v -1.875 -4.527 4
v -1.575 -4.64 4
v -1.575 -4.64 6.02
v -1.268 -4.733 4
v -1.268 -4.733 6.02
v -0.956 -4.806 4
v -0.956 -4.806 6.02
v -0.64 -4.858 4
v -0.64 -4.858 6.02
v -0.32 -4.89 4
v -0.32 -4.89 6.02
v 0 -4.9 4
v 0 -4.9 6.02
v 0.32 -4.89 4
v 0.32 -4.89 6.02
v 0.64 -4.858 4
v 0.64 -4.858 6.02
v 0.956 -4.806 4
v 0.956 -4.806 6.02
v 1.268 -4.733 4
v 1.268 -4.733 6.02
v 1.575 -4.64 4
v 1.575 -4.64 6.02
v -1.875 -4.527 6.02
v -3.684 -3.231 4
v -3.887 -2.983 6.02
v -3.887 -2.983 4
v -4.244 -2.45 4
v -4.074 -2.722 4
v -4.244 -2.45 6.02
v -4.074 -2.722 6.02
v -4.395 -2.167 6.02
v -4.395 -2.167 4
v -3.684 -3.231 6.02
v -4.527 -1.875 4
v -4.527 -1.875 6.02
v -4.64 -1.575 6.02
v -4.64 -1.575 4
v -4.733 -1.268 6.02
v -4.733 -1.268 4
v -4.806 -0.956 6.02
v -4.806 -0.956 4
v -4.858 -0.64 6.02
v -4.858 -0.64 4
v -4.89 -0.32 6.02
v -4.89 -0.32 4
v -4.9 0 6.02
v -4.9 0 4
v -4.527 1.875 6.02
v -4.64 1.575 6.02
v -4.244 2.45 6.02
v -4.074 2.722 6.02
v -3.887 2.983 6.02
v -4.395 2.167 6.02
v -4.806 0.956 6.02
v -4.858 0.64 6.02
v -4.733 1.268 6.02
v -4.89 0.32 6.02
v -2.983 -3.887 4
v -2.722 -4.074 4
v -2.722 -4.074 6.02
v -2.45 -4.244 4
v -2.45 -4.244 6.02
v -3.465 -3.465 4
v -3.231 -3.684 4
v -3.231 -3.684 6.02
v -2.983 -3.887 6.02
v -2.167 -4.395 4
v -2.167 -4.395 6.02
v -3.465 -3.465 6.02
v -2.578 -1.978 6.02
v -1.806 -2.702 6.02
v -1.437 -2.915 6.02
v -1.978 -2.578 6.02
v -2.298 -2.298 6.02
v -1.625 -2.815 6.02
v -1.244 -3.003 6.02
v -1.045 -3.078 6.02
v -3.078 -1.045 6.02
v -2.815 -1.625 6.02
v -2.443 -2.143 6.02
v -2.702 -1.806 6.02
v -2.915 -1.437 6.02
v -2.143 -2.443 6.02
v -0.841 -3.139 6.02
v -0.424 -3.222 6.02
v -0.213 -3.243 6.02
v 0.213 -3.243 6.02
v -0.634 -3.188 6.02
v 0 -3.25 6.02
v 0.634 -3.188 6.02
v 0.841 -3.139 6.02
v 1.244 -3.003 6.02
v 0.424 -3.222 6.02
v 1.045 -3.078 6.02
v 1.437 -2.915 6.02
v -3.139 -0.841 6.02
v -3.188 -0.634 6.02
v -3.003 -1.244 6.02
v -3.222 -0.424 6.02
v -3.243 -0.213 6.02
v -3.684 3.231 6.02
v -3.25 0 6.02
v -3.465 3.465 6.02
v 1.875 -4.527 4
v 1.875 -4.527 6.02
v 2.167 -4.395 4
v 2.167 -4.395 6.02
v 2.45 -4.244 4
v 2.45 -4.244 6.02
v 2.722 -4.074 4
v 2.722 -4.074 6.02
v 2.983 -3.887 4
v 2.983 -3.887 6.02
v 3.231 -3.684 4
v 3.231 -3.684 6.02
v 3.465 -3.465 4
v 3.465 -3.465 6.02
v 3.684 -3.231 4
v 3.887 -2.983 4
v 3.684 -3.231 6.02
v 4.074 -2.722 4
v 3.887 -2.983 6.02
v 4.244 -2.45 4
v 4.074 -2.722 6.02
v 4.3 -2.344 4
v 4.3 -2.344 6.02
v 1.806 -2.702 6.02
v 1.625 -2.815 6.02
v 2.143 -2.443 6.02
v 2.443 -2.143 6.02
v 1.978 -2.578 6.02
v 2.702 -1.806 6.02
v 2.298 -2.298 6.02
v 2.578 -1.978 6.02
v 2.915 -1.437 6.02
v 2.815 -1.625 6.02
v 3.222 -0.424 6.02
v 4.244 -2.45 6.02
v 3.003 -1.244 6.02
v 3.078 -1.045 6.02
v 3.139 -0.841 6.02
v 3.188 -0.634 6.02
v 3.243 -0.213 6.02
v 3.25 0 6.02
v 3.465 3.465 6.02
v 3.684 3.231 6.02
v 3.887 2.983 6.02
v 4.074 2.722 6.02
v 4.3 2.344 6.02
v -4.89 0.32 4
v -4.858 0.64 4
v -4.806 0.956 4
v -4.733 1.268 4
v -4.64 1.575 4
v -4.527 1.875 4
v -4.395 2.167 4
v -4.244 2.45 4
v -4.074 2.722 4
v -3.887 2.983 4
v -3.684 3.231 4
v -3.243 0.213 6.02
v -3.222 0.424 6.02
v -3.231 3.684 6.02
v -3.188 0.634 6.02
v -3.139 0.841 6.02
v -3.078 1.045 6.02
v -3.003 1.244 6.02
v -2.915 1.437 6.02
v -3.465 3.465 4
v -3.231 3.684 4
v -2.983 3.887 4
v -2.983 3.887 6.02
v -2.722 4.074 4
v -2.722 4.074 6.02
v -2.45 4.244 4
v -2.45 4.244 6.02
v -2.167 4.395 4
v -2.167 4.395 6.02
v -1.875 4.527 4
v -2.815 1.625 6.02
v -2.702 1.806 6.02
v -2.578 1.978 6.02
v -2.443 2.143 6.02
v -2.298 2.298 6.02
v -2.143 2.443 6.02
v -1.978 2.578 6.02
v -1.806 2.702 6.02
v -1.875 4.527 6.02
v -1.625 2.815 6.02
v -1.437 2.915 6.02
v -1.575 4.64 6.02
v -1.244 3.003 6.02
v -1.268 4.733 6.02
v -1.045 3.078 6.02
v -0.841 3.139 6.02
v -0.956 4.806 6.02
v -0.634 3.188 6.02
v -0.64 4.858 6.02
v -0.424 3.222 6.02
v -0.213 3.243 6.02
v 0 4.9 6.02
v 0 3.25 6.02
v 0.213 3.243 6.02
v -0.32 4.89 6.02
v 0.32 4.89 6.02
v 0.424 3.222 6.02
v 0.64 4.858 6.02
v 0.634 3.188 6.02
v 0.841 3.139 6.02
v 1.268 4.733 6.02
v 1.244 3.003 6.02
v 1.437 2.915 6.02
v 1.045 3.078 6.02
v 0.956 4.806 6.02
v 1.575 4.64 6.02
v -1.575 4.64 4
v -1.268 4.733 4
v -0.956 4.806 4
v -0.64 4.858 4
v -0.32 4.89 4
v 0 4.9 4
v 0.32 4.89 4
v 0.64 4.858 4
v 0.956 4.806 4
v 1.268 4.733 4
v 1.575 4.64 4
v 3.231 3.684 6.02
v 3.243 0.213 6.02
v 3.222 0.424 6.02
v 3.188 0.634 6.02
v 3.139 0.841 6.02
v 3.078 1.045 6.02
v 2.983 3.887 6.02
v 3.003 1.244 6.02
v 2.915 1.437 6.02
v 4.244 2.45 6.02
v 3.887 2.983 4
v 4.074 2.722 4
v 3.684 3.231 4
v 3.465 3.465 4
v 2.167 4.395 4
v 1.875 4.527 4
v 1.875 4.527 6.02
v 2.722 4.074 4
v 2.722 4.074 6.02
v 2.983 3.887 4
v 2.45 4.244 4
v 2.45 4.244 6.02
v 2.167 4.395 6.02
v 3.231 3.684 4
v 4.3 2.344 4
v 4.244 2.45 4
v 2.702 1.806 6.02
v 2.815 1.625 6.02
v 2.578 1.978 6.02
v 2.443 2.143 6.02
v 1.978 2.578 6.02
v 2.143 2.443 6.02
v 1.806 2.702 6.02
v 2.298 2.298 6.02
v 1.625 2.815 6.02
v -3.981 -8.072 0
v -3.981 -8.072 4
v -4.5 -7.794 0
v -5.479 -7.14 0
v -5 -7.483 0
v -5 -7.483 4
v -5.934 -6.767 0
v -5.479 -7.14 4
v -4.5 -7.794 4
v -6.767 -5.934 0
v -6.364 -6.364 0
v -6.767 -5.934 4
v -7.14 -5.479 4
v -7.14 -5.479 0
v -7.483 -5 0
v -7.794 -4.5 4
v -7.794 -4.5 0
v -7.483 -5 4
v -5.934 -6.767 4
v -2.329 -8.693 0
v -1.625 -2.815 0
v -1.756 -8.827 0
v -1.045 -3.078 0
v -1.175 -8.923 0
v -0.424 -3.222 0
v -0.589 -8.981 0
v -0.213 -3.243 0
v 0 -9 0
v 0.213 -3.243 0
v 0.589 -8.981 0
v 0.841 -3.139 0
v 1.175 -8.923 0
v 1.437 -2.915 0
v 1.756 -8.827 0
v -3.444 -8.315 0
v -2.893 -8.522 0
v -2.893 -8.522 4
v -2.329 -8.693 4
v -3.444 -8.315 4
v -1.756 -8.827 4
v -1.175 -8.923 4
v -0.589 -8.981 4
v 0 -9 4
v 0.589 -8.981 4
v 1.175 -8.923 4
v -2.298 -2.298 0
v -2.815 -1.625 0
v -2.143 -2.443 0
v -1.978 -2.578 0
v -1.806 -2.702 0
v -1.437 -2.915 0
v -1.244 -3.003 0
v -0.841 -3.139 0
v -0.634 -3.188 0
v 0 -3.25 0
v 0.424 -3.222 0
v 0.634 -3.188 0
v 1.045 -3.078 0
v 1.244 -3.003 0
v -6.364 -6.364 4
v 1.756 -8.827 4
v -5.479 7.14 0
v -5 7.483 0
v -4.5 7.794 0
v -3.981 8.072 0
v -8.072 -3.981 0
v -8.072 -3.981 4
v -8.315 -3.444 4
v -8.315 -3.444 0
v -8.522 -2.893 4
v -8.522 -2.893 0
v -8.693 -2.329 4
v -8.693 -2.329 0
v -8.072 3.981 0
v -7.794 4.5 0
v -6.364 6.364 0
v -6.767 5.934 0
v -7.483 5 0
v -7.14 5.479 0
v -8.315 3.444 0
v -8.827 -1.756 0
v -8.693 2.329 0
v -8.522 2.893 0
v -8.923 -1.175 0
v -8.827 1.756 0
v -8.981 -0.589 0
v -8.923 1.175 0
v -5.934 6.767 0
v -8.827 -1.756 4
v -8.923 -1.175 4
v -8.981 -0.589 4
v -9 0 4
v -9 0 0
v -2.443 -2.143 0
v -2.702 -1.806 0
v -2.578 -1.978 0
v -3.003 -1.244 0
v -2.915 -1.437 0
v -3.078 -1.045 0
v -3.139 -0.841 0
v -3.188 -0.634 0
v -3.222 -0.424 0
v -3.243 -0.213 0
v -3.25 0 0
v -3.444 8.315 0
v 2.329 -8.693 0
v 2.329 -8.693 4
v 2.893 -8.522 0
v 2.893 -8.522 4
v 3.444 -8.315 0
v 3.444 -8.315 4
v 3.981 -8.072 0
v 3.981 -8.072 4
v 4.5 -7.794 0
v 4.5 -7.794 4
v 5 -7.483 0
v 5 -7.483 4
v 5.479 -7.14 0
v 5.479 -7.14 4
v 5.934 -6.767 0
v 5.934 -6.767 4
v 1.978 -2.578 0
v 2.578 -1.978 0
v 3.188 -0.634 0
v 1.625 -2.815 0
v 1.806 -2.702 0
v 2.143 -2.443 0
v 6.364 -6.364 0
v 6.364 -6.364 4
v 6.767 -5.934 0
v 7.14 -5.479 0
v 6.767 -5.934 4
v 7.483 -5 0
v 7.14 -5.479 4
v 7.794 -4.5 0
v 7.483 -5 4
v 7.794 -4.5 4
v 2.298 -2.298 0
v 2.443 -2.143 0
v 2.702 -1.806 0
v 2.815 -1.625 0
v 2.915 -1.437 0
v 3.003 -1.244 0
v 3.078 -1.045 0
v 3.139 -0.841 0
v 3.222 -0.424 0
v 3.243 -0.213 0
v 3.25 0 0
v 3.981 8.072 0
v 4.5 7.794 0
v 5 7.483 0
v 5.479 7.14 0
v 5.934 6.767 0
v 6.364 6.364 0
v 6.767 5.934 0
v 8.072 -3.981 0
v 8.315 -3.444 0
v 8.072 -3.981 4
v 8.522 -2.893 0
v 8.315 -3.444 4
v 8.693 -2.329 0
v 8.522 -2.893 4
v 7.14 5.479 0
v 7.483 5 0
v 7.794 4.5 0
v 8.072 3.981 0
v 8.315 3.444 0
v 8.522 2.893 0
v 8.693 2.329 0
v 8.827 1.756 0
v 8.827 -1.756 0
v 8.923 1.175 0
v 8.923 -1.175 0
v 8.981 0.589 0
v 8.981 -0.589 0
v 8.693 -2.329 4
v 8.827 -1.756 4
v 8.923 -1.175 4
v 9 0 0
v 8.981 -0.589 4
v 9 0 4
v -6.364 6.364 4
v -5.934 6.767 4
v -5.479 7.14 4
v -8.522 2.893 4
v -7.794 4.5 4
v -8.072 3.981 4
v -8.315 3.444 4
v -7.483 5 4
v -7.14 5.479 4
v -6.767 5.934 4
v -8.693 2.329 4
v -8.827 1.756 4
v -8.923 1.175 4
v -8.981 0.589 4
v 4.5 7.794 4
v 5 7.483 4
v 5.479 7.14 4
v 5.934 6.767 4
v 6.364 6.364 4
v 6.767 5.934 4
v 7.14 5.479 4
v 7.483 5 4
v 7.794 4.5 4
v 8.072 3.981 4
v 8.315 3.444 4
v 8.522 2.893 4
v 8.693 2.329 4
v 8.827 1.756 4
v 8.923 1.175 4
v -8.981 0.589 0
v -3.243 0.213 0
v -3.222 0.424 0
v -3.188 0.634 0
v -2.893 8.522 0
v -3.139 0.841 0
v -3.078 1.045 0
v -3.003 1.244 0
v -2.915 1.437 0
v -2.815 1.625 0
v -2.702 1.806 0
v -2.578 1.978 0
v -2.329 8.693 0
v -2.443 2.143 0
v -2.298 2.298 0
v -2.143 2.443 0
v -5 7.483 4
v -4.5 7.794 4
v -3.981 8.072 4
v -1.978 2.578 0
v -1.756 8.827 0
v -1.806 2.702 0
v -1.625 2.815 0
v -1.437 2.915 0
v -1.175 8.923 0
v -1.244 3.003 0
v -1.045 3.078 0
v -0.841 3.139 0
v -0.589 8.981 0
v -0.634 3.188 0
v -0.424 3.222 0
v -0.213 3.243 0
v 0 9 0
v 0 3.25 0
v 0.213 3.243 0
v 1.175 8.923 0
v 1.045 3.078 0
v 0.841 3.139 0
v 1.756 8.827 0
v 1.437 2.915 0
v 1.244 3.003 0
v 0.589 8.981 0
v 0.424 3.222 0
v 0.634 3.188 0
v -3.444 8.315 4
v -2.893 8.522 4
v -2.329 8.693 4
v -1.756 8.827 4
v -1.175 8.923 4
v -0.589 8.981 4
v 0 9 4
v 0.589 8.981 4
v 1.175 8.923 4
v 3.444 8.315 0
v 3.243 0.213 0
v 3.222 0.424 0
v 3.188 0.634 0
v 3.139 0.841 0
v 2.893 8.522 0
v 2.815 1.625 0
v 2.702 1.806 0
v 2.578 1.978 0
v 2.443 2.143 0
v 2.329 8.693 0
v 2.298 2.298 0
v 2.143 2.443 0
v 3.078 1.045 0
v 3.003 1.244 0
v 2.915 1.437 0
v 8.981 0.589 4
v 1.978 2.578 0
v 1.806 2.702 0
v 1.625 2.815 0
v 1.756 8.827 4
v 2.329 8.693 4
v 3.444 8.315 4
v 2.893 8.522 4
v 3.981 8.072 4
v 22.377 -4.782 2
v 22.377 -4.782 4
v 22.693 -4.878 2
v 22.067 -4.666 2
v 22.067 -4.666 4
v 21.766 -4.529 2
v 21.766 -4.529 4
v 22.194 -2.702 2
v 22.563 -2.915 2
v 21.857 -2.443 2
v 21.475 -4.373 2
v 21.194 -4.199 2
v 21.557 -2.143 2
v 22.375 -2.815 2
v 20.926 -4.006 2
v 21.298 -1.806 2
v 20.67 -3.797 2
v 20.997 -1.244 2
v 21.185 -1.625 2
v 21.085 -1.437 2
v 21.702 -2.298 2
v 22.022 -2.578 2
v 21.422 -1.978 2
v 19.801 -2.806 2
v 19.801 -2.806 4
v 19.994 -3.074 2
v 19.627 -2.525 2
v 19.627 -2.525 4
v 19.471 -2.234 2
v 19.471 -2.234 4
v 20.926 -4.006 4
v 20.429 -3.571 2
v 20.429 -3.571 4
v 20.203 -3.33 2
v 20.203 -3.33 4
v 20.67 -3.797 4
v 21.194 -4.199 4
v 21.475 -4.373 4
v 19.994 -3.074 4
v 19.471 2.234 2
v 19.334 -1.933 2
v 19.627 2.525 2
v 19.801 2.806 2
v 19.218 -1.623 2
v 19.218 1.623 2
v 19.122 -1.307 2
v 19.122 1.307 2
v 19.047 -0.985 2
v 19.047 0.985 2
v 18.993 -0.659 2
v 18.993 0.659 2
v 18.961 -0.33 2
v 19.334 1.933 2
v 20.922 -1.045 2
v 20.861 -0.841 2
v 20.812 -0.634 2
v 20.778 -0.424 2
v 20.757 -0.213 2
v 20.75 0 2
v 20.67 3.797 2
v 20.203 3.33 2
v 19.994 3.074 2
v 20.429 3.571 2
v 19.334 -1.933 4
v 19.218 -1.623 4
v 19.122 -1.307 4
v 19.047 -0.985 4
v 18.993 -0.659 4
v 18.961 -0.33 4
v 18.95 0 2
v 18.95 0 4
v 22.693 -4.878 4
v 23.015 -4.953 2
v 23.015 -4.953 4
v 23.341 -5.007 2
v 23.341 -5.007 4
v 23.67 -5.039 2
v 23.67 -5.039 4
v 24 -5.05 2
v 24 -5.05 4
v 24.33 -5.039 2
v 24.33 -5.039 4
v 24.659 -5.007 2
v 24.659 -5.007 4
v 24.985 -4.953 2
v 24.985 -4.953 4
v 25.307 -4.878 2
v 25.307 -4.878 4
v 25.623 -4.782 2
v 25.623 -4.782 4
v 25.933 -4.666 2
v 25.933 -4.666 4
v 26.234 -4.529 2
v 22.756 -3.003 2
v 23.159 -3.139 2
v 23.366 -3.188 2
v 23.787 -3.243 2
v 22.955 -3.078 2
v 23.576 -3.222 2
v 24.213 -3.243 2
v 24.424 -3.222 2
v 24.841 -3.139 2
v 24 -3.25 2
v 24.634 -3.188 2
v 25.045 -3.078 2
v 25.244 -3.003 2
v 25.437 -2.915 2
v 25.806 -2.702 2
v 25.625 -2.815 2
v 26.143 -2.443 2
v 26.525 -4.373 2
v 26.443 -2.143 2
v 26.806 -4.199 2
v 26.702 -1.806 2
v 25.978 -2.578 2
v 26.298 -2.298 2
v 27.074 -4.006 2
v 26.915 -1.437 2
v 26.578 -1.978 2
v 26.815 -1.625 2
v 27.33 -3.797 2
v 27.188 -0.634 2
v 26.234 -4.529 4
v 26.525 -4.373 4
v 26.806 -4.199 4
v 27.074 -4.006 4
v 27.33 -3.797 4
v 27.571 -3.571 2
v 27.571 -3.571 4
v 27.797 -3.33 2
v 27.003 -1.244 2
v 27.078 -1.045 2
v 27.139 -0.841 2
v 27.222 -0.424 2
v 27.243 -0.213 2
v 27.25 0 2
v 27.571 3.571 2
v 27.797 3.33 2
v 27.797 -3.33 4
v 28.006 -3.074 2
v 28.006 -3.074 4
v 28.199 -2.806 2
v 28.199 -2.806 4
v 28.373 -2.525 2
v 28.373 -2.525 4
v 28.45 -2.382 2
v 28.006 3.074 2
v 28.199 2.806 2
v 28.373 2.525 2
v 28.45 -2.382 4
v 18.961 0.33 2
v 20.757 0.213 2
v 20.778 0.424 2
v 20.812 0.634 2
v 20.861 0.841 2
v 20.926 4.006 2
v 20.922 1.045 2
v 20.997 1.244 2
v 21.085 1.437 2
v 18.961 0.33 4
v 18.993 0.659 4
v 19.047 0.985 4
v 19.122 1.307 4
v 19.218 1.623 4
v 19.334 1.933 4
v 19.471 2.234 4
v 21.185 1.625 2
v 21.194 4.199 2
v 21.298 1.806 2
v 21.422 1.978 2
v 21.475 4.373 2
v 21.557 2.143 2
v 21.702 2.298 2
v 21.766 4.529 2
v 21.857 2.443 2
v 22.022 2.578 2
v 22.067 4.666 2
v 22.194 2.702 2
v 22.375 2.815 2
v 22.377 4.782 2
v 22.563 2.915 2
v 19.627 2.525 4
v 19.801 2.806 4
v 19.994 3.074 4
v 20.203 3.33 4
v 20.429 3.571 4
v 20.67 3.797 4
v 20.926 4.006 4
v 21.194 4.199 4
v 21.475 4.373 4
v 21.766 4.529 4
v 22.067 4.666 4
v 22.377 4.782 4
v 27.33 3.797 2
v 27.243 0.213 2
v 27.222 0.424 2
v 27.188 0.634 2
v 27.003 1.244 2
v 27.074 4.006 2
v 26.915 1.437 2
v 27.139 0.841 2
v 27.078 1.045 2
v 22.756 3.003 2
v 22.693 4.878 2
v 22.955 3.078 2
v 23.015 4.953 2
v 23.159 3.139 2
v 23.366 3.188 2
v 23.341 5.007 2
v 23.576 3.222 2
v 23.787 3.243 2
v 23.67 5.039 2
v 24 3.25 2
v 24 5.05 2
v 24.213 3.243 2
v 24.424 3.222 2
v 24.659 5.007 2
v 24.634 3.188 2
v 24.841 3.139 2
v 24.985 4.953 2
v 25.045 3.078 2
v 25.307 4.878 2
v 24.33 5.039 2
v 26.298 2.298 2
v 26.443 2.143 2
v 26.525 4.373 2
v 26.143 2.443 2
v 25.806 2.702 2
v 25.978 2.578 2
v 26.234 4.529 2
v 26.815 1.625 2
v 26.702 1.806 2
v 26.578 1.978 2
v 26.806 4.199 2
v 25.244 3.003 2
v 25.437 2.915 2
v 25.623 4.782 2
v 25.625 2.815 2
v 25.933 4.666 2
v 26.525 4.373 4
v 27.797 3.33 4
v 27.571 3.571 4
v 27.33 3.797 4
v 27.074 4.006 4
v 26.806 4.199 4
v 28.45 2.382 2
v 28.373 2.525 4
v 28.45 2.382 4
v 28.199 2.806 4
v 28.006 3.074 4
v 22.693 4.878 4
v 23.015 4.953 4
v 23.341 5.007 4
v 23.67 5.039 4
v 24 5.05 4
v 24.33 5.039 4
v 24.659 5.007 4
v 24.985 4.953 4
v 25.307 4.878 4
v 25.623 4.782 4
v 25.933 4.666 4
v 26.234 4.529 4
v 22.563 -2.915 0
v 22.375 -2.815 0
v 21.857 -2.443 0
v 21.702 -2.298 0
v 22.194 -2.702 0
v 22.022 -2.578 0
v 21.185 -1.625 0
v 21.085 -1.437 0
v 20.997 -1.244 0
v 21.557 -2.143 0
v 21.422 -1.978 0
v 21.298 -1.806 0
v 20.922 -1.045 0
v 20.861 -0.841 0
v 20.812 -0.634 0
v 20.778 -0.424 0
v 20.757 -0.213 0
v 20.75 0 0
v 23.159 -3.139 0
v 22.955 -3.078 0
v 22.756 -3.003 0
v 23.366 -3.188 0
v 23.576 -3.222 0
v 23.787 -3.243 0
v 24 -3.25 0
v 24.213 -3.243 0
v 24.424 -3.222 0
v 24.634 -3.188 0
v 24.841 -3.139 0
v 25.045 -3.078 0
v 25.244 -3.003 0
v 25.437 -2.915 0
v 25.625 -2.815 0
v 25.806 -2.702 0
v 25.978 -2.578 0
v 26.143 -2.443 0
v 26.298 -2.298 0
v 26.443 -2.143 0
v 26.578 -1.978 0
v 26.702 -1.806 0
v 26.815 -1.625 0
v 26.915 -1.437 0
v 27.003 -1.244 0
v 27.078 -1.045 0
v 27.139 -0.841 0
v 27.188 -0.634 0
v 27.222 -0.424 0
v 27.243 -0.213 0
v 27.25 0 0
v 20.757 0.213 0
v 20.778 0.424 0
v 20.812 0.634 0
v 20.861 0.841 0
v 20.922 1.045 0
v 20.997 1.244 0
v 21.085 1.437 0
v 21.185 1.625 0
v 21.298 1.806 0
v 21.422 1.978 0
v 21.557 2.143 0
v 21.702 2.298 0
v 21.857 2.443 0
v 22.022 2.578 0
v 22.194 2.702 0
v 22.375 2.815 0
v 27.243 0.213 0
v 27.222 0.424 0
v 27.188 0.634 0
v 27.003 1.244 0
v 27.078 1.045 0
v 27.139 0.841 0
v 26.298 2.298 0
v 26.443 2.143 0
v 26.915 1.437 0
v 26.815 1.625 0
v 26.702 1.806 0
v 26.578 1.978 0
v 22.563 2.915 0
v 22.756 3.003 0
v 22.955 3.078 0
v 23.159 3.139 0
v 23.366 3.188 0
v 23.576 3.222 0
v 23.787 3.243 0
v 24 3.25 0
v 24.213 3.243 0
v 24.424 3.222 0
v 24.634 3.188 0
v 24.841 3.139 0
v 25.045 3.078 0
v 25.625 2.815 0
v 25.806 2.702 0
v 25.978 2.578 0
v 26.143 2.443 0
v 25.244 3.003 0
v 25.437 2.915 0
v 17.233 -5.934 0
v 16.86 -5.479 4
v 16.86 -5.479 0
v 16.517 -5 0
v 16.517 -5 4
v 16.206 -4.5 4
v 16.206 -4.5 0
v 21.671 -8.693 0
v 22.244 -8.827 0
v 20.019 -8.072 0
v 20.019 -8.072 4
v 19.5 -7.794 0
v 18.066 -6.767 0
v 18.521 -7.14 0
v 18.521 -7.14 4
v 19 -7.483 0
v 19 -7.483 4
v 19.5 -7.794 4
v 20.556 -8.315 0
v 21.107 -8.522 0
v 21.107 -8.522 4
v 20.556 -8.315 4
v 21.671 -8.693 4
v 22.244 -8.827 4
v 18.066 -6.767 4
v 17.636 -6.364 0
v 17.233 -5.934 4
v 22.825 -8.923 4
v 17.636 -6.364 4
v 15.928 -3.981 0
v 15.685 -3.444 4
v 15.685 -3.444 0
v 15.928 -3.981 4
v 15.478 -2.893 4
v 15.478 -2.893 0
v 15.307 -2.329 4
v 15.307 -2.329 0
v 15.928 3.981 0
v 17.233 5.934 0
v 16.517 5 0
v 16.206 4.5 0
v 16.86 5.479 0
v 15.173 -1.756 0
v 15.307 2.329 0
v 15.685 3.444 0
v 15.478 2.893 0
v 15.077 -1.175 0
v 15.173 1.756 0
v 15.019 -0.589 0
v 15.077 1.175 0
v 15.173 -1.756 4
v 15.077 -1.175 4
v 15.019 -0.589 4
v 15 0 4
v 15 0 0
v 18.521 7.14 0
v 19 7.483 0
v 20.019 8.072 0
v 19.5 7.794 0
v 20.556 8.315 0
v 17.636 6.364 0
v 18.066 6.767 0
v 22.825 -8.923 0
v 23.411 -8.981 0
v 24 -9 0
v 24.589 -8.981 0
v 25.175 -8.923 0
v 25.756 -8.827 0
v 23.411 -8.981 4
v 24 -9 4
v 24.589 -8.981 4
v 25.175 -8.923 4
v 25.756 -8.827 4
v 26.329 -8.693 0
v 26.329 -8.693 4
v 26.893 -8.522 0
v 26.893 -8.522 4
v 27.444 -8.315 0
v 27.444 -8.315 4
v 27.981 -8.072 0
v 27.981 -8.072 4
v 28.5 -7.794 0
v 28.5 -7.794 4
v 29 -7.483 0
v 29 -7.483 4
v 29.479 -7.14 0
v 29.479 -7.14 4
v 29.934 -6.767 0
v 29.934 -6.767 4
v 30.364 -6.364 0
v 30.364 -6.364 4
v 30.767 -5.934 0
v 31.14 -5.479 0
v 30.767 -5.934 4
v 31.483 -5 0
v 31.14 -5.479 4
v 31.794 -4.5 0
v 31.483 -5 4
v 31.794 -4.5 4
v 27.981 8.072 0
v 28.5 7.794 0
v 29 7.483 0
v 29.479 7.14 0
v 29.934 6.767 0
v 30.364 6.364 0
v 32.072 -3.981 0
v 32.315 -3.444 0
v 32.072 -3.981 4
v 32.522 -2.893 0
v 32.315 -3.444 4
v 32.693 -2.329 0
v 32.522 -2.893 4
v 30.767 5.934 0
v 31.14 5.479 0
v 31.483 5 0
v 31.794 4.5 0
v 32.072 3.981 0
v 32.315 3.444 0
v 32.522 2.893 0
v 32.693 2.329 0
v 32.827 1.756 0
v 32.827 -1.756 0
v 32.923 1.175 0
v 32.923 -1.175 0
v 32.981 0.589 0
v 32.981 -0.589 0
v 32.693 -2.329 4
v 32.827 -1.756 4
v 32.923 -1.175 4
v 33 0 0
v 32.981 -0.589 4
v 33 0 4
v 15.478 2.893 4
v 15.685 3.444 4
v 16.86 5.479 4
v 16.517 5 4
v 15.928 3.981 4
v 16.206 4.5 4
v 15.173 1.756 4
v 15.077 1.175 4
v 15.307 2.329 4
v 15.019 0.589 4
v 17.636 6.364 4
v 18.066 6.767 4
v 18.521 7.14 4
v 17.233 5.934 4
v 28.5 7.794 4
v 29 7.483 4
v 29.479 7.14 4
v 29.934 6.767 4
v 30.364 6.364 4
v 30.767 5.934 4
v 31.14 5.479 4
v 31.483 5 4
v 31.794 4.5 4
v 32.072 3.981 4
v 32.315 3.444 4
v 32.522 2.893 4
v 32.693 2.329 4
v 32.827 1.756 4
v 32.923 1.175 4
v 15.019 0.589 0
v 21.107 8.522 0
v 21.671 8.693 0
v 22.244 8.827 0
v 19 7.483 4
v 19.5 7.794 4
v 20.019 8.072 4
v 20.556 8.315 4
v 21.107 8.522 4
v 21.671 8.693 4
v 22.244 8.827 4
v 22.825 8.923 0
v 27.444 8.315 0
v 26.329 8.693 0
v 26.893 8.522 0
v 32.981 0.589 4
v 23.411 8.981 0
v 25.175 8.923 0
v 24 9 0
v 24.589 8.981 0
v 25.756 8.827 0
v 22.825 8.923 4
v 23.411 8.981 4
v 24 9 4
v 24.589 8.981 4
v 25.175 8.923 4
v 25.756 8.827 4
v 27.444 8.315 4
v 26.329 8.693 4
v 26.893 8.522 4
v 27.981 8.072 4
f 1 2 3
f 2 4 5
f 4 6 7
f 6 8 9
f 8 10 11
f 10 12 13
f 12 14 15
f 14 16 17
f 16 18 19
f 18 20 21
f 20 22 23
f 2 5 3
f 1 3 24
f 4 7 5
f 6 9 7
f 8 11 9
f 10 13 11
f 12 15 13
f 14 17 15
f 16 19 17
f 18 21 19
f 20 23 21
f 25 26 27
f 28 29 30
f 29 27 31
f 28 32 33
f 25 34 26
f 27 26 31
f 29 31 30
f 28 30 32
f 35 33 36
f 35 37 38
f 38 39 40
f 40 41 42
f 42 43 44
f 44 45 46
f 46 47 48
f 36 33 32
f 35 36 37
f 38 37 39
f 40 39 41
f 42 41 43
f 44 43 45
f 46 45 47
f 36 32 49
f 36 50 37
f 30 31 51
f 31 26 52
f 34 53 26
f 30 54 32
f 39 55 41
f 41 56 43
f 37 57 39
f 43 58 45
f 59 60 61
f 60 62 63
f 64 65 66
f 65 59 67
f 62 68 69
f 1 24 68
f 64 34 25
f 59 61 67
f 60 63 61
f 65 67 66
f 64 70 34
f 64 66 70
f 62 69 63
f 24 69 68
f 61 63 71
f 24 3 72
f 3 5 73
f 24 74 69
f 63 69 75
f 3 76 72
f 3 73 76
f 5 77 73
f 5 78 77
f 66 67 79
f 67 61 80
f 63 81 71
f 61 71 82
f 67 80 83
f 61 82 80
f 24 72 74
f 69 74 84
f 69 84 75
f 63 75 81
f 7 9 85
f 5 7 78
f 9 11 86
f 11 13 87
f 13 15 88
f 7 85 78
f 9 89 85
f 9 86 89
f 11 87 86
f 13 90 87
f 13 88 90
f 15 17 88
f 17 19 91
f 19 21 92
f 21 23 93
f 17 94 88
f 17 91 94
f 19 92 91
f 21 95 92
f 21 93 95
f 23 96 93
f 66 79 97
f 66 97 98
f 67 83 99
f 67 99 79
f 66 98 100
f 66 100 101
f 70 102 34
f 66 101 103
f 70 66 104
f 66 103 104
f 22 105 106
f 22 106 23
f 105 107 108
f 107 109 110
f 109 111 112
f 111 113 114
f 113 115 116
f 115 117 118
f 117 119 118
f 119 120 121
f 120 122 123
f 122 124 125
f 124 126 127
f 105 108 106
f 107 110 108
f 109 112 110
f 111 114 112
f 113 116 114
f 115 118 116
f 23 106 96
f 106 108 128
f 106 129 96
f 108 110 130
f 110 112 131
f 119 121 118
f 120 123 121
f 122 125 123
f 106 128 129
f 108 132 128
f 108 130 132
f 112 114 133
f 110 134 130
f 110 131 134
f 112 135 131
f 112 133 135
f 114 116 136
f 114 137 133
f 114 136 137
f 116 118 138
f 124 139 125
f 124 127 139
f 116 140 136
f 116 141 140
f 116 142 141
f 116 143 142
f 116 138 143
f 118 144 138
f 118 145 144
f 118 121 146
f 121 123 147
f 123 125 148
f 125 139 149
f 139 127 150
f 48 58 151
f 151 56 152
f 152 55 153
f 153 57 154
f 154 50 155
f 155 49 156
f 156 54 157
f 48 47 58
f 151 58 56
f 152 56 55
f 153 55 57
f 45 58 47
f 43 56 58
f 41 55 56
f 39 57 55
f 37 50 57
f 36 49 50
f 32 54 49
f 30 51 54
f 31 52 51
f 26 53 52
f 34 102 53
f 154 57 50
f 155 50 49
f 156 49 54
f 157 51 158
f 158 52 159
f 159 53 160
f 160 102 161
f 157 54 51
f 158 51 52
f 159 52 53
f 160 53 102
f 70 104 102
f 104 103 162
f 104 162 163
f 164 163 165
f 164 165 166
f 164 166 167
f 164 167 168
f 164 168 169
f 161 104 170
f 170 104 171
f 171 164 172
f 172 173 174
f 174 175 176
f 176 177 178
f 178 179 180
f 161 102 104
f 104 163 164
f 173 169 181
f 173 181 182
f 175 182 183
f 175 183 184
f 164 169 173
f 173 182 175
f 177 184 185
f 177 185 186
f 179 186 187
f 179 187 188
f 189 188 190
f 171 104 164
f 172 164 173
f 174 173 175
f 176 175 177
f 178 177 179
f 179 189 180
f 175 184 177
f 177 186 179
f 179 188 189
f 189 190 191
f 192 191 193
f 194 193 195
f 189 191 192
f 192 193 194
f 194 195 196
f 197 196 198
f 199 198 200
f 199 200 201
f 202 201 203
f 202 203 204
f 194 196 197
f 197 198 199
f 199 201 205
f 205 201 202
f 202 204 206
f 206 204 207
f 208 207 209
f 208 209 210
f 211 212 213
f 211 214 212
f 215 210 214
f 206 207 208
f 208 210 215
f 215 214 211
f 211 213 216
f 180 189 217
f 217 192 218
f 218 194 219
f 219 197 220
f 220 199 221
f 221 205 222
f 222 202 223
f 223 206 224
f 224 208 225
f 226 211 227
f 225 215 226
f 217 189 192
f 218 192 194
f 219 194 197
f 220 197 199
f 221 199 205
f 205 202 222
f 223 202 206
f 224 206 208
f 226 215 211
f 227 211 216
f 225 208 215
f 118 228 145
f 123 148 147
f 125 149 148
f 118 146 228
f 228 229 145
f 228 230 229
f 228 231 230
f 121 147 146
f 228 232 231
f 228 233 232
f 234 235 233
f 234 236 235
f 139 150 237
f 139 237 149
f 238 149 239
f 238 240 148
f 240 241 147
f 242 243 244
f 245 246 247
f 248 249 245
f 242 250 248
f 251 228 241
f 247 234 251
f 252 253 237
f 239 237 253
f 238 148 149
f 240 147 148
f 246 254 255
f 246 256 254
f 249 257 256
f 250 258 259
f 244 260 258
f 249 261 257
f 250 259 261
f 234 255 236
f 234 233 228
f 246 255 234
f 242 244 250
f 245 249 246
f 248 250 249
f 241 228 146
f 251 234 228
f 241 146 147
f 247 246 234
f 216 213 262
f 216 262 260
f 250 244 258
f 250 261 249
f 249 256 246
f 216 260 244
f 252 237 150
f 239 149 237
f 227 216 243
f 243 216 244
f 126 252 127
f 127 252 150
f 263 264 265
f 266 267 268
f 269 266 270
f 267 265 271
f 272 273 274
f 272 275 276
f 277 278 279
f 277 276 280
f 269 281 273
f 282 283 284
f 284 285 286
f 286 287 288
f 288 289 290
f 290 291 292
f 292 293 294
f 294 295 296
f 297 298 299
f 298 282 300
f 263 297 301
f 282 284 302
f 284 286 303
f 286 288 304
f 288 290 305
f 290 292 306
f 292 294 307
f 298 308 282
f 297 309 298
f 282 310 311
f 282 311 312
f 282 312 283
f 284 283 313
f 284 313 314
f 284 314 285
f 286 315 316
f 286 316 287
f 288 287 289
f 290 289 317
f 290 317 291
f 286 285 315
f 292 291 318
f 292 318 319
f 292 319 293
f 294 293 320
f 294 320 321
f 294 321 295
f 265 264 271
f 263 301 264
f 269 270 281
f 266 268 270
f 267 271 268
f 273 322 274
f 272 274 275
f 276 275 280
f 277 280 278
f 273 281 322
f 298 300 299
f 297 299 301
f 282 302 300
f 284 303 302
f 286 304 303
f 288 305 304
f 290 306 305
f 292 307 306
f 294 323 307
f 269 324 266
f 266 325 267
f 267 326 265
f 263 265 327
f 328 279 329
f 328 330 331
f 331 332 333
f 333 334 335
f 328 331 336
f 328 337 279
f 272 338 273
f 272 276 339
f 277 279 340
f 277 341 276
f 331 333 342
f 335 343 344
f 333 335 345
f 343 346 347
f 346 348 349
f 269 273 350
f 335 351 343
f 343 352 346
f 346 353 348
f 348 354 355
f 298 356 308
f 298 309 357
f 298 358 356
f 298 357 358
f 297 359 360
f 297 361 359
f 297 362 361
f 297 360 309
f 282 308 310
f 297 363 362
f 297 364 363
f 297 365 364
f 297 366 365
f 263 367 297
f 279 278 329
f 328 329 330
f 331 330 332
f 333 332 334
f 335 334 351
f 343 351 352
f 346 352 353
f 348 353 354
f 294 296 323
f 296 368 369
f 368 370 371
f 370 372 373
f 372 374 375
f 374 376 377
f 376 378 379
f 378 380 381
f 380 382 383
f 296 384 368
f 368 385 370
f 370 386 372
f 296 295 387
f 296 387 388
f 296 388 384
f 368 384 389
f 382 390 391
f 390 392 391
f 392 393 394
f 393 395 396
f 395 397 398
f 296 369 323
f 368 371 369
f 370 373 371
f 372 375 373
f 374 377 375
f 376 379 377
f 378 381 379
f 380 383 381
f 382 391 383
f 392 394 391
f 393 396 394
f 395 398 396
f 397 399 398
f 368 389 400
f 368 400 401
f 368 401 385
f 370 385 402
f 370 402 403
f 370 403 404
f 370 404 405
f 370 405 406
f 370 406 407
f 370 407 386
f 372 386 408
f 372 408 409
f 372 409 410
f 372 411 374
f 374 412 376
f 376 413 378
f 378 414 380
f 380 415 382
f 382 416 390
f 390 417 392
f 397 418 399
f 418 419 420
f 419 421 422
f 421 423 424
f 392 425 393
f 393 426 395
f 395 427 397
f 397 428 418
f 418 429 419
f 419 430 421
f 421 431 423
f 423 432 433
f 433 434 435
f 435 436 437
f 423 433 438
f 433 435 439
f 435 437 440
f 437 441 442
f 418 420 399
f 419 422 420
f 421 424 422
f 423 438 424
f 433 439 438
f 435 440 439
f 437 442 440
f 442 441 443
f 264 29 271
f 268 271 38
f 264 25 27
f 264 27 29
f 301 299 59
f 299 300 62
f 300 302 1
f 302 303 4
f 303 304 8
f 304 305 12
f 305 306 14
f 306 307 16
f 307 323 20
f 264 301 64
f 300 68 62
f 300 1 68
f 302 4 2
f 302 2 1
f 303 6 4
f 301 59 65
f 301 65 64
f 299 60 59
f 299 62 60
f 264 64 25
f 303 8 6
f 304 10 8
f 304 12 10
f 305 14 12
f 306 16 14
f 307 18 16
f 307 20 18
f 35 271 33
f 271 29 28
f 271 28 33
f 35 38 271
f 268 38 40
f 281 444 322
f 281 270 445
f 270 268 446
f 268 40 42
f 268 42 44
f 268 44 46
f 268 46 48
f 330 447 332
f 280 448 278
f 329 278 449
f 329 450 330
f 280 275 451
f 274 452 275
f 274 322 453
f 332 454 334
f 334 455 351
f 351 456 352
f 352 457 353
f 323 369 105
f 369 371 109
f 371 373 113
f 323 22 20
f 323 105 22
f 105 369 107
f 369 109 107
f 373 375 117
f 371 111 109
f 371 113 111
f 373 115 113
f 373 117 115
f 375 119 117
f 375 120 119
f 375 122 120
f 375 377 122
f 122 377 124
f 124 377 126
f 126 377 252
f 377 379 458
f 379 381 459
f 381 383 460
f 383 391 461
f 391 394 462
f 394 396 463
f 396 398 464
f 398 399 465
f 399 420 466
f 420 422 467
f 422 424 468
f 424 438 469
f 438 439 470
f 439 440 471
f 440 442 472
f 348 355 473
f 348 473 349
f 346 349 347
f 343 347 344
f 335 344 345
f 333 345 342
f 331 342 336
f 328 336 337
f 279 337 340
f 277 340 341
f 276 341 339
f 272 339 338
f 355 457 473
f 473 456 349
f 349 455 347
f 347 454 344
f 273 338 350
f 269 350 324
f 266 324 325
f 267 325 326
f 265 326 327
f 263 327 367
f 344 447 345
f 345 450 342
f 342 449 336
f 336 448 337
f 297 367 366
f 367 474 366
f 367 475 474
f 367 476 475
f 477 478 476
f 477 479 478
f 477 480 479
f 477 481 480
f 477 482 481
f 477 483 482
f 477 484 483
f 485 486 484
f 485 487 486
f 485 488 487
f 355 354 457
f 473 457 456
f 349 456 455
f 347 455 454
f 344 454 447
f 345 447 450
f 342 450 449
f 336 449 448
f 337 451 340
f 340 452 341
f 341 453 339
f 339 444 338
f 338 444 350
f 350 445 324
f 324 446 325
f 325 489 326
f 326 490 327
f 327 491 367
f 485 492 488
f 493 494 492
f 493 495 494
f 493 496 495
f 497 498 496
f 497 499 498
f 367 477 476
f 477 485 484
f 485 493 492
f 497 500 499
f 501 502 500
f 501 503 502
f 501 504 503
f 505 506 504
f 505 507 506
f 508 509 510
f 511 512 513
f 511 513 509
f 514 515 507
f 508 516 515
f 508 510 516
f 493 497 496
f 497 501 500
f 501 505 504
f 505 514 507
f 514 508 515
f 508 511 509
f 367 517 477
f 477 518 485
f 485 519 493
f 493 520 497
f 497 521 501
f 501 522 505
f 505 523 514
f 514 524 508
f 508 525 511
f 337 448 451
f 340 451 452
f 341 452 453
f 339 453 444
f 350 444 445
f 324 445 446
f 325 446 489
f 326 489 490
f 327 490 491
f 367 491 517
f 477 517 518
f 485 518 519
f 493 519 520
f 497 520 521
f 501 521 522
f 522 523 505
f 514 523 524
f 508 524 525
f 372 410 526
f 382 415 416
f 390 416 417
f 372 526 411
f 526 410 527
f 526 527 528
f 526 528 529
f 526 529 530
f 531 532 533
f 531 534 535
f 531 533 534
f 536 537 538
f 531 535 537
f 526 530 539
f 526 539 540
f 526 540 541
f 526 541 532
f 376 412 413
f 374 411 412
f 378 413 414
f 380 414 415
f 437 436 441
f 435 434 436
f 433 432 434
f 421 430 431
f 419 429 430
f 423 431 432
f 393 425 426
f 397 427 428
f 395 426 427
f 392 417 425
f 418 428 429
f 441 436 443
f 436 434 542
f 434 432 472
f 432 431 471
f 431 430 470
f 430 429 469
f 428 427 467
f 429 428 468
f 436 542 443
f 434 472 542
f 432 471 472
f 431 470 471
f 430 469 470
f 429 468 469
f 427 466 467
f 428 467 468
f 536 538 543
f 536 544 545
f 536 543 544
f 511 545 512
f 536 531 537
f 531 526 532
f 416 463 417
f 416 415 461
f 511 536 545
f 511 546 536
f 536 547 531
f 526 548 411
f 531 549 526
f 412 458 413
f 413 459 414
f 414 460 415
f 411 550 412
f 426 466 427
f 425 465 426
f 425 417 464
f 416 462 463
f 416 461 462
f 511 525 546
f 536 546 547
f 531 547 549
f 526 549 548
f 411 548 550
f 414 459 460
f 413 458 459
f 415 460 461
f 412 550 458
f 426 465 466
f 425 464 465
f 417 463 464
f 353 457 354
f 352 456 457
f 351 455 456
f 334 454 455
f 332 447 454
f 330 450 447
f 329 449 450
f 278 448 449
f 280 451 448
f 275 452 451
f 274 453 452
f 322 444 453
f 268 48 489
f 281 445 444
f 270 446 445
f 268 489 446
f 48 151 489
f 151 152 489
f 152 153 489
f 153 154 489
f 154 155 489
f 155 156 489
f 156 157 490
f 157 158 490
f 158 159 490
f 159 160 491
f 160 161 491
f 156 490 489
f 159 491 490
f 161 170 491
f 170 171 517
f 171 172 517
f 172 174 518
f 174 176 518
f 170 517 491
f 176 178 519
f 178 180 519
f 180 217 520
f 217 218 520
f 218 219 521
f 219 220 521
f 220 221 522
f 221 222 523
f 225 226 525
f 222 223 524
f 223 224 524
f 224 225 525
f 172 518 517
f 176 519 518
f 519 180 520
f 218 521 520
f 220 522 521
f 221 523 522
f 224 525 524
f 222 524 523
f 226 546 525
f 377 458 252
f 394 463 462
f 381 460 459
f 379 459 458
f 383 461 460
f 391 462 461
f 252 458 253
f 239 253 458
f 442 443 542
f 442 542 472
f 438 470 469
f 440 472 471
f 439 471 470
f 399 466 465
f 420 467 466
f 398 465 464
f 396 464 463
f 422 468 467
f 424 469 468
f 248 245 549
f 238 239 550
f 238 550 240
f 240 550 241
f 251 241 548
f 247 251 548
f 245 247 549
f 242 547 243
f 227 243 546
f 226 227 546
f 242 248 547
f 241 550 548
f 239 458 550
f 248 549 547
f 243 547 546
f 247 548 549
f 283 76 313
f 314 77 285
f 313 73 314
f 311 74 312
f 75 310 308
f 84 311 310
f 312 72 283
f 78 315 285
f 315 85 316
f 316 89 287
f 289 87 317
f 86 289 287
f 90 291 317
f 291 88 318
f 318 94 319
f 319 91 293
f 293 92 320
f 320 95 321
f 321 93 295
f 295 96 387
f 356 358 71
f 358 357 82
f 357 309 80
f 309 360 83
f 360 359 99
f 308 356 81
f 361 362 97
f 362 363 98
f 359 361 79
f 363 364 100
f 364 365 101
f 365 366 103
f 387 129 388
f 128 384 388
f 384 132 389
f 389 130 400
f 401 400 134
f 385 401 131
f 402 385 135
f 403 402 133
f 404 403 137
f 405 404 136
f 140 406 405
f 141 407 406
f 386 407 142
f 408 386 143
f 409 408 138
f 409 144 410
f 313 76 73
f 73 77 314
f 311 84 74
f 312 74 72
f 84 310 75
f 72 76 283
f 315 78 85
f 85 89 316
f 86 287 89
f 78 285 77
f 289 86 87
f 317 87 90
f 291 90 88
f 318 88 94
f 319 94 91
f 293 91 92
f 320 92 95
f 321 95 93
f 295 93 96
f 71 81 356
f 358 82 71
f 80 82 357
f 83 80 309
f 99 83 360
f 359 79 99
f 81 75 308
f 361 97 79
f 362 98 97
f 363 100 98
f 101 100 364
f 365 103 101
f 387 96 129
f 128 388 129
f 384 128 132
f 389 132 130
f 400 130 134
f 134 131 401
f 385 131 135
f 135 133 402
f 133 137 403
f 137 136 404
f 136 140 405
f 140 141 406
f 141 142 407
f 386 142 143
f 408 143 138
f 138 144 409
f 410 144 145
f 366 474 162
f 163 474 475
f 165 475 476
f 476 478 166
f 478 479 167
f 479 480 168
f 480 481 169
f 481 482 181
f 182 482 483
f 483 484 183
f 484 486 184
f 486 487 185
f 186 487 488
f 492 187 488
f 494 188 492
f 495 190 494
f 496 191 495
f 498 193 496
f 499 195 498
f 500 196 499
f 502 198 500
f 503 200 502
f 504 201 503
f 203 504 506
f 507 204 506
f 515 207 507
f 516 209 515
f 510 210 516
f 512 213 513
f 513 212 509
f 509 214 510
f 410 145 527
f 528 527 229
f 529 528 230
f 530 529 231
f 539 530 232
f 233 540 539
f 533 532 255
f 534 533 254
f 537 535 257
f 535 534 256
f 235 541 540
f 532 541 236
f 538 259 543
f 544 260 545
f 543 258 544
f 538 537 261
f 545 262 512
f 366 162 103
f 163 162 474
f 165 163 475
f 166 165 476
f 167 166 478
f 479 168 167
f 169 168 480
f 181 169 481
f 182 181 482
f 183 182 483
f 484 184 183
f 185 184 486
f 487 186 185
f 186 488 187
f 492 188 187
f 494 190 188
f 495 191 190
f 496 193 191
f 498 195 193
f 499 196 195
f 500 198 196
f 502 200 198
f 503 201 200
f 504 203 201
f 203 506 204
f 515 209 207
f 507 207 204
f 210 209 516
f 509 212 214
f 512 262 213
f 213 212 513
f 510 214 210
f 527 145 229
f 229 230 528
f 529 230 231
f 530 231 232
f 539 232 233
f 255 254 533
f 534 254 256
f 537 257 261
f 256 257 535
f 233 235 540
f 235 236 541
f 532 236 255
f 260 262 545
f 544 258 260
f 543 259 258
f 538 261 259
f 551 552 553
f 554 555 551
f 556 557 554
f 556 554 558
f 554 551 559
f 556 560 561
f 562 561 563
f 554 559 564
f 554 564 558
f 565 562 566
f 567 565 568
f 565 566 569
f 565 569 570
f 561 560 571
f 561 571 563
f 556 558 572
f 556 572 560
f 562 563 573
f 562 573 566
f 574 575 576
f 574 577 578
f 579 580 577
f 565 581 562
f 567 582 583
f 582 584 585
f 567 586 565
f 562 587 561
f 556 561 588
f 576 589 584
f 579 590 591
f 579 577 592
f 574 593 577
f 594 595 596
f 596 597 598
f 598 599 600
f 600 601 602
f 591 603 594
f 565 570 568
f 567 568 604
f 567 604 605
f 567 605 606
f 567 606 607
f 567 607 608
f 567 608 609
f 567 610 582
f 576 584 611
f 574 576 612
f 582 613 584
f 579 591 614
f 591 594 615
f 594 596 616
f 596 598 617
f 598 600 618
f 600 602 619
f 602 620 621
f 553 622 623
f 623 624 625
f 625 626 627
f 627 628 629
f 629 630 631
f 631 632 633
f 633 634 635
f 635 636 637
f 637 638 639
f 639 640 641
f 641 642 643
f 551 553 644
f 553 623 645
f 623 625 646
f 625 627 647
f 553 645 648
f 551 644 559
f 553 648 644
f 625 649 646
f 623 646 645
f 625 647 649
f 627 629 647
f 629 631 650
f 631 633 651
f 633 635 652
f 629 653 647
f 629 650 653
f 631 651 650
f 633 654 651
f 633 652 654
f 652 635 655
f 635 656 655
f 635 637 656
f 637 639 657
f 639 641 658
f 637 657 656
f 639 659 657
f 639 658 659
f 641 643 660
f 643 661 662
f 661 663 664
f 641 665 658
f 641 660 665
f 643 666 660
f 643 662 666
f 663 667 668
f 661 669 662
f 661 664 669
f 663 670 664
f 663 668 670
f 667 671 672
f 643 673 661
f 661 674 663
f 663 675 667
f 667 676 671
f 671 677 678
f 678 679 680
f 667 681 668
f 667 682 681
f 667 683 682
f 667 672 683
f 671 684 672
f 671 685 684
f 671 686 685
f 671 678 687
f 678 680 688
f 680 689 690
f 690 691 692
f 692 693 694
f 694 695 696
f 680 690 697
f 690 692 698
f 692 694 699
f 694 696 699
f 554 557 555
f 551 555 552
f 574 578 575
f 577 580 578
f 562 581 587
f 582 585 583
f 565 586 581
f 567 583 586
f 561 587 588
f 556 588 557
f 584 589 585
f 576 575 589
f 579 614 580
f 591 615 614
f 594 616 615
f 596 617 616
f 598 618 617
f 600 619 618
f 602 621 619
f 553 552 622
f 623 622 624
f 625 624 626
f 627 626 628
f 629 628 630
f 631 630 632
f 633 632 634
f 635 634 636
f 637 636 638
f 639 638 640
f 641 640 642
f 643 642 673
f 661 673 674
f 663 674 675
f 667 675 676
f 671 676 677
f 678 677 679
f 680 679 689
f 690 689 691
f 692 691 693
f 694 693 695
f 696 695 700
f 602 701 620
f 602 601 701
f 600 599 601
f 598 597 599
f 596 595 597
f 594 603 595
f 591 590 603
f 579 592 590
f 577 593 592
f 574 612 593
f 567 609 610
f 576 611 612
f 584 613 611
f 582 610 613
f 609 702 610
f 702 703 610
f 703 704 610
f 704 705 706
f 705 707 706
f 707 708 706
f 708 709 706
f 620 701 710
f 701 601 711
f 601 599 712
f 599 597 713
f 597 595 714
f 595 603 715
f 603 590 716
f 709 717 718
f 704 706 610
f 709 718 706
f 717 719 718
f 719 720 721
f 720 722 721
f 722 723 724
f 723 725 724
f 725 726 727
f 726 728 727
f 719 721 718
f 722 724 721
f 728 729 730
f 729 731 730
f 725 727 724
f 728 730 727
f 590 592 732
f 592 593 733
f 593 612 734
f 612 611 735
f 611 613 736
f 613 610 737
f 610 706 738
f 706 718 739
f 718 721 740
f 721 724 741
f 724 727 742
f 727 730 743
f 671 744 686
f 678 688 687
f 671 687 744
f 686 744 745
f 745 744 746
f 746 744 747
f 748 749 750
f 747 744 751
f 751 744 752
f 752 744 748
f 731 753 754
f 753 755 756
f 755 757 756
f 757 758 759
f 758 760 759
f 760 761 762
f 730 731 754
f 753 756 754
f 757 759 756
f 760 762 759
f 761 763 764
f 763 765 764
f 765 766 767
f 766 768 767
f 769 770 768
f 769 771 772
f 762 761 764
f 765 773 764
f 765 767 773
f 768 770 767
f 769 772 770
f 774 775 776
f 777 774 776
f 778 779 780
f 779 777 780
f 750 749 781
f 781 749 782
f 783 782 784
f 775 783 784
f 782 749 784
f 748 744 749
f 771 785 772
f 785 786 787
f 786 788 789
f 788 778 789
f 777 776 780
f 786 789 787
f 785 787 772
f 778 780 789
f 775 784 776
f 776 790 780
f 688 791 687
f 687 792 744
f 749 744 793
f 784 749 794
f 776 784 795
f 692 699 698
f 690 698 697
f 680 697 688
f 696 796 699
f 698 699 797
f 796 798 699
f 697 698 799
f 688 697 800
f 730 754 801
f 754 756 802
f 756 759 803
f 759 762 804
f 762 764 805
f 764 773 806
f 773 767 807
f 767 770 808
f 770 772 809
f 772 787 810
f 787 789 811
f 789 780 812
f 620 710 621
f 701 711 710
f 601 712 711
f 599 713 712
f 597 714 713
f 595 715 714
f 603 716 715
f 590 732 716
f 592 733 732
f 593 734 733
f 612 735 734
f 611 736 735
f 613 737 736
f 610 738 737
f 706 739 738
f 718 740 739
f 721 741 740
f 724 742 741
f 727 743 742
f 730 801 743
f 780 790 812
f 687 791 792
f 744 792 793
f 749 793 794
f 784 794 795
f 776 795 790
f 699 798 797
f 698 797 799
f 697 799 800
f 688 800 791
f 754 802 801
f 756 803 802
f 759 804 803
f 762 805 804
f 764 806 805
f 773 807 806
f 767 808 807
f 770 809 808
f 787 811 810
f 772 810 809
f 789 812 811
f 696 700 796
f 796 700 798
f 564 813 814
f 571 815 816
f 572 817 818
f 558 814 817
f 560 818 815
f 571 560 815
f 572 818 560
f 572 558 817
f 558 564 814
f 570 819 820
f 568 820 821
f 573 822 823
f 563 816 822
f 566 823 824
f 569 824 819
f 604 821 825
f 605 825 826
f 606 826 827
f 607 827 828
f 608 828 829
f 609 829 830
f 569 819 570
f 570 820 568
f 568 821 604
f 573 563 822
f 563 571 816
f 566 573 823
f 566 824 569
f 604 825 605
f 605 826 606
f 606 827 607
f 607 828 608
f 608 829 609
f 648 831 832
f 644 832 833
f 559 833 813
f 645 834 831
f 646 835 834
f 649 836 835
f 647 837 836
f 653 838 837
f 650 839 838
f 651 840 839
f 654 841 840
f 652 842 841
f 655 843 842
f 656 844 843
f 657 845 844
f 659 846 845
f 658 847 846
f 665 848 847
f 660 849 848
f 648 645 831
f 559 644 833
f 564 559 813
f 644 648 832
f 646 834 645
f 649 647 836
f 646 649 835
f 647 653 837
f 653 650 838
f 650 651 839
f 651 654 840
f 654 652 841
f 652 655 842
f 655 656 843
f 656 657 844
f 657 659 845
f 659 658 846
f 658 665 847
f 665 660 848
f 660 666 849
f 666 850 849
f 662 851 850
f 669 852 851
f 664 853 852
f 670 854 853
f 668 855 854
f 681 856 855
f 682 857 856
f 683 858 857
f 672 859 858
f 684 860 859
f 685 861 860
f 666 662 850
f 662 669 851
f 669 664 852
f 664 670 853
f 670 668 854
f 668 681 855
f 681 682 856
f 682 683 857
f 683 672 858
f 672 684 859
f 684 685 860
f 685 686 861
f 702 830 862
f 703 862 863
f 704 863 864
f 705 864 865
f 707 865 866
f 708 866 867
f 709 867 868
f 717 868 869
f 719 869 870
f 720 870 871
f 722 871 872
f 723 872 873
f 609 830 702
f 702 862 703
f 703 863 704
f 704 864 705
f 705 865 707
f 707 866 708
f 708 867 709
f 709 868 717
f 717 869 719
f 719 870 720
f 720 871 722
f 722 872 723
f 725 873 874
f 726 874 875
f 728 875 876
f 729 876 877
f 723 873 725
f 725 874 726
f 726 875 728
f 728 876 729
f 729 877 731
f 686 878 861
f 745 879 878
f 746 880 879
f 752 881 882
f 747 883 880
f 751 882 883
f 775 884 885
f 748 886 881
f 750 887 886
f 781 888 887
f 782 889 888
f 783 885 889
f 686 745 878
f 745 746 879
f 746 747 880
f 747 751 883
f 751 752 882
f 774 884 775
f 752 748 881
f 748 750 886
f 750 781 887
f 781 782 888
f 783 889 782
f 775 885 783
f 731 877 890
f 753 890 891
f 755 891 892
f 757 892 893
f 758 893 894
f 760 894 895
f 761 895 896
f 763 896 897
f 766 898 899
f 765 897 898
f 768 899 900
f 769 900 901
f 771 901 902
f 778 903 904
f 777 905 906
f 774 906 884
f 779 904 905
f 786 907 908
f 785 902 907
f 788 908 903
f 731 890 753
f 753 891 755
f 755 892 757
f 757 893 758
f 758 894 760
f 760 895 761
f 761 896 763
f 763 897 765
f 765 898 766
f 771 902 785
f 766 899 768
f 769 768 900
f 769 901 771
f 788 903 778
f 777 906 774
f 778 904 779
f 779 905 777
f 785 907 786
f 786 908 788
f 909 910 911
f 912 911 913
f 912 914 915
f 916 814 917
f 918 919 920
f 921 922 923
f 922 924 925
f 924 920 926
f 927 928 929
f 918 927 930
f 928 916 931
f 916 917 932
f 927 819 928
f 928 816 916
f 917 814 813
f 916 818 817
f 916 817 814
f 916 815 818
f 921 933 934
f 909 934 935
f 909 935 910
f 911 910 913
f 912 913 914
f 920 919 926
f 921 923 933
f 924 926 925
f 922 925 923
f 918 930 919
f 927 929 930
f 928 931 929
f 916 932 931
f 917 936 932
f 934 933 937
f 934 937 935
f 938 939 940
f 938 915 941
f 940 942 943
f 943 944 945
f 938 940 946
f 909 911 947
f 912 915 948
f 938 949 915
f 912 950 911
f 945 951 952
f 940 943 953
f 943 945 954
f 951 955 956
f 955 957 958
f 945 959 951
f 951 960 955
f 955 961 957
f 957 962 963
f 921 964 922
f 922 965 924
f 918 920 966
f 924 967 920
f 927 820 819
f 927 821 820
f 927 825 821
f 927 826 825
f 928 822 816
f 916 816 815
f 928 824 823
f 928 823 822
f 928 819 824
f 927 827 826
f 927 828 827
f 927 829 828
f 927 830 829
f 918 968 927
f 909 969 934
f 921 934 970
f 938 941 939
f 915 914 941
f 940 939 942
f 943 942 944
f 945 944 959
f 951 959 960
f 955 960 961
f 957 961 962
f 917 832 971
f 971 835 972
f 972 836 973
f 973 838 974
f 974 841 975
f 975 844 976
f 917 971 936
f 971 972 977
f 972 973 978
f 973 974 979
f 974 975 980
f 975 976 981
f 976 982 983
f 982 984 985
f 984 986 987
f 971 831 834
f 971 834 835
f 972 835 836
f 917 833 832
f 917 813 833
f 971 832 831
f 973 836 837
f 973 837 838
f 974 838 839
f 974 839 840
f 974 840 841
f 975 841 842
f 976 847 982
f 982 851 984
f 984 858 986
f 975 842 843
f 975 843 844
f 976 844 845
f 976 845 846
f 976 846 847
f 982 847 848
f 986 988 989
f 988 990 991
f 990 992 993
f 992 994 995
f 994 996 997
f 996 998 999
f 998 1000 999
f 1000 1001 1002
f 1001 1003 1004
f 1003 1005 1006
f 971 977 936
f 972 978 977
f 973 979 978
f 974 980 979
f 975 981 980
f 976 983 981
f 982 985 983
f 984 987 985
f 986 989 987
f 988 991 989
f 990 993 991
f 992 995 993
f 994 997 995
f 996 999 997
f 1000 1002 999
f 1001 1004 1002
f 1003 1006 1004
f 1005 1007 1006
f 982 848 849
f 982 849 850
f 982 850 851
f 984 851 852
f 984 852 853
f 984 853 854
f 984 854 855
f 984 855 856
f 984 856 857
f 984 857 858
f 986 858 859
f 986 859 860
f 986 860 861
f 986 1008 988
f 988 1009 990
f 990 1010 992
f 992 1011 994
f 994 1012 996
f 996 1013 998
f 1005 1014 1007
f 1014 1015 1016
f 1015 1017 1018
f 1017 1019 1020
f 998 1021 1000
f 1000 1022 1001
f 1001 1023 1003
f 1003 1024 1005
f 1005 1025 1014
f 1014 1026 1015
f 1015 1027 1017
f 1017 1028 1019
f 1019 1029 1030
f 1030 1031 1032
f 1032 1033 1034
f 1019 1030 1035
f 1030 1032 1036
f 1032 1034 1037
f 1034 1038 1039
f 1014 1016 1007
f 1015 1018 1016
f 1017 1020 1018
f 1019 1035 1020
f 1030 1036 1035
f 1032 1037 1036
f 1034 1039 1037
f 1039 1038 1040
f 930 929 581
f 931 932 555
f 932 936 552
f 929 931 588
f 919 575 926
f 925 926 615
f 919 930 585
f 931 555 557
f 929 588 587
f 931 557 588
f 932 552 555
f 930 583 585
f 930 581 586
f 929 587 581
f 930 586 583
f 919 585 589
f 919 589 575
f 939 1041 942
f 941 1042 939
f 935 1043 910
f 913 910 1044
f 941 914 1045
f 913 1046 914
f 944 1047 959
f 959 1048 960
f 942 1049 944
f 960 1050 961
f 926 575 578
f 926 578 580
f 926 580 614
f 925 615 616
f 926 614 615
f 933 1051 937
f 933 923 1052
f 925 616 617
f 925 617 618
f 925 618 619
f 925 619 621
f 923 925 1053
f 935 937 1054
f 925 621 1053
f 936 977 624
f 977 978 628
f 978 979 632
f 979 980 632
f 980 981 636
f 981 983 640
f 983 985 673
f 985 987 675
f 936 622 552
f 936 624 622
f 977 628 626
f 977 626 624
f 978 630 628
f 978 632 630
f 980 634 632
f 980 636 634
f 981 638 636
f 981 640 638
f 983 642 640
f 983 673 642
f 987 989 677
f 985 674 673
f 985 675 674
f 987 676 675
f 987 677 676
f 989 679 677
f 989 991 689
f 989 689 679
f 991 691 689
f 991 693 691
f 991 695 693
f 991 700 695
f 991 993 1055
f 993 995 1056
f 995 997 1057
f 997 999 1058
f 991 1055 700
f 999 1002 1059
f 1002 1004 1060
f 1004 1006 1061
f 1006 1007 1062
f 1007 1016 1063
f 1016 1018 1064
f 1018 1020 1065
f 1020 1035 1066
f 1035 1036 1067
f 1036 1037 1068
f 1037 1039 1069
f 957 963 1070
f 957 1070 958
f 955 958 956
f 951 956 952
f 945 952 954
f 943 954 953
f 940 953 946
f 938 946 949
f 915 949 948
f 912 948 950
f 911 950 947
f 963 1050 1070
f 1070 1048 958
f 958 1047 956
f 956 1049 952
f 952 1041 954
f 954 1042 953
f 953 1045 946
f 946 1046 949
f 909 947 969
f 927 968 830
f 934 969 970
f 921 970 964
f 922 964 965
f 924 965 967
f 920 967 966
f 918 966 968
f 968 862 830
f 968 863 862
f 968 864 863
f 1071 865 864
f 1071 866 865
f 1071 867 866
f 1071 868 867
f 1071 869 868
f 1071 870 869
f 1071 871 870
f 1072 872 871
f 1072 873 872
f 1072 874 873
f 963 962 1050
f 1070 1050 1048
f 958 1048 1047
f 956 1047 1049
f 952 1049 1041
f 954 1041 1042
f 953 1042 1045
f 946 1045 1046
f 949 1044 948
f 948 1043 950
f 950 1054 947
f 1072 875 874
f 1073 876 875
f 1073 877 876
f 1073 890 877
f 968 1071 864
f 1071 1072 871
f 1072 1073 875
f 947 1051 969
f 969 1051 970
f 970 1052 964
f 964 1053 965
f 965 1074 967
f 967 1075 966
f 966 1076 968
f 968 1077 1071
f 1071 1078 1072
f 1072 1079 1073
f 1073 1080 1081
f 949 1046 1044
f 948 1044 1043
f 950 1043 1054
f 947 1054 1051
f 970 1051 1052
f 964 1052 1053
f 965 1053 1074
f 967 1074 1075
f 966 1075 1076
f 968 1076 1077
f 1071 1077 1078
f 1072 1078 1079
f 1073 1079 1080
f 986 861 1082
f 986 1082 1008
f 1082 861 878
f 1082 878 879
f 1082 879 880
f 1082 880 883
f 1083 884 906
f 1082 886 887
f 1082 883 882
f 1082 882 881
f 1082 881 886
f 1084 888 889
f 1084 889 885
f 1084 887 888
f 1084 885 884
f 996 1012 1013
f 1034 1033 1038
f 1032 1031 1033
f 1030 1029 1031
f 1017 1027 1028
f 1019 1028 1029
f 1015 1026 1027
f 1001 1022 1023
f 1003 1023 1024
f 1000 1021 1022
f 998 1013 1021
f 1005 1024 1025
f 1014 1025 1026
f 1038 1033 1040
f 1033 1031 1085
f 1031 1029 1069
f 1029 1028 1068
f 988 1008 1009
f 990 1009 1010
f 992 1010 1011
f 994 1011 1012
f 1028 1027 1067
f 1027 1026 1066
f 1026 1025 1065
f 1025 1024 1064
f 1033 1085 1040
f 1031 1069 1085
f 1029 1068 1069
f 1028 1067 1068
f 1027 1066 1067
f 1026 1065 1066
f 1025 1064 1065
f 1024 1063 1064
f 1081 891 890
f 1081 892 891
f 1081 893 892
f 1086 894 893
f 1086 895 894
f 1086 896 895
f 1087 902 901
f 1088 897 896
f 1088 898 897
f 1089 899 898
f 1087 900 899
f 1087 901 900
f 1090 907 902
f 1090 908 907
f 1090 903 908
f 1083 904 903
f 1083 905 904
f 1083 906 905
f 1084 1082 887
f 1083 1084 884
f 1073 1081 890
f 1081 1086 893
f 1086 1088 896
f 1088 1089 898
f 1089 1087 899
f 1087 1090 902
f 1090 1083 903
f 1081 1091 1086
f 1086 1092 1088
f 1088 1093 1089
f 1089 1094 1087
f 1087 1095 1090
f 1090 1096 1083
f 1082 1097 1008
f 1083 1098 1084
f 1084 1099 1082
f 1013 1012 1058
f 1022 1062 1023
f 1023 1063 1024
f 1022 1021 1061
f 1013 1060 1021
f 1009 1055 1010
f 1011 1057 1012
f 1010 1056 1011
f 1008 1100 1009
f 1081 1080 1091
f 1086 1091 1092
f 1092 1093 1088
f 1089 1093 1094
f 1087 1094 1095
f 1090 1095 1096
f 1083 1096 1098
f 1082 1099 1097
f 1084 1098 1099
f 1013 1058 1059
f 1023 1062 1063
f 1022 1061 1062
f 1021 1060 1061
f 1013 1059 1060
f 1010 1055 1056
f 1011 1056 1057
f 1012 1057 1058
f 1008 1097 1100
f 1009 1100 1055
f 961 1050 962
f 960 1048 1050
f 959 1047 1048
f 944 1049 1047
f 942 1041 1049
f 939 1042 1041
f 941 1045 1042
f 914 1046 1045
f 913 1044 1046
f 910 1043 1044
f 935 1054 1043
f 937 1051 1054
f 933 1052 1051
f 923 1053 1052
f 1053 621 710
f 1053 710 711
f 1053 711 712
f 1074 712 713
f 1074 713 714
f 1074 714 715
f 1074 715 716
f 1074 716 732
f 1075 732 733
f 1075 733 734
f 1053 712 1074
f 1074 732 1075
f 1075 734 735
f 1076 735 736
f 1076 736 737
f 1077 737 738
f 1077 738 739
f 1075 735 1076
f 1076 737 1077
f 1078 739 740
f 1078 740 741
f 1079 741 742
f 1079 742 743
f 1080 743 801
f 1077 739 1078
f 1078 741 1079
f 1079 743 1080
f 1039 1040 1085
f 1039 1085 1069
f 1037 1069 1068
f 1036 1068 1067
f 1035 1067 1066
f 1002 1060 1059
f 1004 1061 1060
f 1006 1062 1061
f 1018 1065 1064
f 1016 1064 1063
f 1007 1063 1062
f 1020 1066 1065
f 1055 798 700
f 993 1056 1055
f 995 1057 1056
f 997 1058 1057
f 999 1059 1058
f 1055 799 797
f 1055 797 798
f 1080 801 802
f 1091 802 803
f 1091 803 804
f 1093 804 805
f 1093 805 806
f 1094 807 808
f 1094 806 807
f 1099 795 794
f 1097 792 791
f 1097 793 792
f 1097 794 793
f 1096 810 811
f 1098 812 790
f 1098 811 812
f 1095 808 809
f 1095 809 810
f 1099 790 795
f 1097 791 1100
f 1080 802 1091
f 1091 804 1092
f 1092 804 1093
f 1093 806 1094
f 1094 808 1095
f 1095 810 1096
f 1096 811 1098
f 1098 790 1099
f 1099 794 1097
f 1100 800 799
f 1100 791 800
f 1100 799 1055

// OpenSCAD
$fn=96;
difference() {
	union() {
		translate(v = [0, 0, 0]) {
			rotate(a = [0, 0, 0]) {
				difference() {
					union() {
						translate(v = [0, 0, 4]) {
							rotate(a = [0, 0, 0]) {
								difference() {
									union() {
										cylinder(h = 2.02, r = 4.9);
									}
									union() {
										translate(v = [4.300000000000001, -10.0, -0.01]) {
											cube(size = [20, 20, 2.05]);
										}
									}
								}
							}
						}
						cylinder(h = 4, r = 9);
					}
					union() {
						translate(v = [0, 0, -0.01]) {
							cylinder(h = 7.02, r = 3.25);
						}
					}
				}
			}
		}
		translate(v = [24, 0, 0]) {
			rotate(a = [0, 0, 0]) {
				difference() {
					union() {
						cylinder(h = 4, r = 9);
					}
					union() {
						translate(v = [0, 0, 2]) {
							rotate(a = [0, 0, 0]) {
								difference() {
									union() {
										cylinder(h = 2.17, r = 5.050000000000001);
									}
									union() {
										translate(v = [4.449999999999999, -10.0, -0.01]) {
											cube(size = [20, 20, 2.1999999999999997]);
										}
									}
								}
							}
						}
						translate(v = [0, 0, -0.01]) {
							cylinder(h = 7.02, r = 3.25);
						}
					}
				}
			}
		}
	}
	union();
}
